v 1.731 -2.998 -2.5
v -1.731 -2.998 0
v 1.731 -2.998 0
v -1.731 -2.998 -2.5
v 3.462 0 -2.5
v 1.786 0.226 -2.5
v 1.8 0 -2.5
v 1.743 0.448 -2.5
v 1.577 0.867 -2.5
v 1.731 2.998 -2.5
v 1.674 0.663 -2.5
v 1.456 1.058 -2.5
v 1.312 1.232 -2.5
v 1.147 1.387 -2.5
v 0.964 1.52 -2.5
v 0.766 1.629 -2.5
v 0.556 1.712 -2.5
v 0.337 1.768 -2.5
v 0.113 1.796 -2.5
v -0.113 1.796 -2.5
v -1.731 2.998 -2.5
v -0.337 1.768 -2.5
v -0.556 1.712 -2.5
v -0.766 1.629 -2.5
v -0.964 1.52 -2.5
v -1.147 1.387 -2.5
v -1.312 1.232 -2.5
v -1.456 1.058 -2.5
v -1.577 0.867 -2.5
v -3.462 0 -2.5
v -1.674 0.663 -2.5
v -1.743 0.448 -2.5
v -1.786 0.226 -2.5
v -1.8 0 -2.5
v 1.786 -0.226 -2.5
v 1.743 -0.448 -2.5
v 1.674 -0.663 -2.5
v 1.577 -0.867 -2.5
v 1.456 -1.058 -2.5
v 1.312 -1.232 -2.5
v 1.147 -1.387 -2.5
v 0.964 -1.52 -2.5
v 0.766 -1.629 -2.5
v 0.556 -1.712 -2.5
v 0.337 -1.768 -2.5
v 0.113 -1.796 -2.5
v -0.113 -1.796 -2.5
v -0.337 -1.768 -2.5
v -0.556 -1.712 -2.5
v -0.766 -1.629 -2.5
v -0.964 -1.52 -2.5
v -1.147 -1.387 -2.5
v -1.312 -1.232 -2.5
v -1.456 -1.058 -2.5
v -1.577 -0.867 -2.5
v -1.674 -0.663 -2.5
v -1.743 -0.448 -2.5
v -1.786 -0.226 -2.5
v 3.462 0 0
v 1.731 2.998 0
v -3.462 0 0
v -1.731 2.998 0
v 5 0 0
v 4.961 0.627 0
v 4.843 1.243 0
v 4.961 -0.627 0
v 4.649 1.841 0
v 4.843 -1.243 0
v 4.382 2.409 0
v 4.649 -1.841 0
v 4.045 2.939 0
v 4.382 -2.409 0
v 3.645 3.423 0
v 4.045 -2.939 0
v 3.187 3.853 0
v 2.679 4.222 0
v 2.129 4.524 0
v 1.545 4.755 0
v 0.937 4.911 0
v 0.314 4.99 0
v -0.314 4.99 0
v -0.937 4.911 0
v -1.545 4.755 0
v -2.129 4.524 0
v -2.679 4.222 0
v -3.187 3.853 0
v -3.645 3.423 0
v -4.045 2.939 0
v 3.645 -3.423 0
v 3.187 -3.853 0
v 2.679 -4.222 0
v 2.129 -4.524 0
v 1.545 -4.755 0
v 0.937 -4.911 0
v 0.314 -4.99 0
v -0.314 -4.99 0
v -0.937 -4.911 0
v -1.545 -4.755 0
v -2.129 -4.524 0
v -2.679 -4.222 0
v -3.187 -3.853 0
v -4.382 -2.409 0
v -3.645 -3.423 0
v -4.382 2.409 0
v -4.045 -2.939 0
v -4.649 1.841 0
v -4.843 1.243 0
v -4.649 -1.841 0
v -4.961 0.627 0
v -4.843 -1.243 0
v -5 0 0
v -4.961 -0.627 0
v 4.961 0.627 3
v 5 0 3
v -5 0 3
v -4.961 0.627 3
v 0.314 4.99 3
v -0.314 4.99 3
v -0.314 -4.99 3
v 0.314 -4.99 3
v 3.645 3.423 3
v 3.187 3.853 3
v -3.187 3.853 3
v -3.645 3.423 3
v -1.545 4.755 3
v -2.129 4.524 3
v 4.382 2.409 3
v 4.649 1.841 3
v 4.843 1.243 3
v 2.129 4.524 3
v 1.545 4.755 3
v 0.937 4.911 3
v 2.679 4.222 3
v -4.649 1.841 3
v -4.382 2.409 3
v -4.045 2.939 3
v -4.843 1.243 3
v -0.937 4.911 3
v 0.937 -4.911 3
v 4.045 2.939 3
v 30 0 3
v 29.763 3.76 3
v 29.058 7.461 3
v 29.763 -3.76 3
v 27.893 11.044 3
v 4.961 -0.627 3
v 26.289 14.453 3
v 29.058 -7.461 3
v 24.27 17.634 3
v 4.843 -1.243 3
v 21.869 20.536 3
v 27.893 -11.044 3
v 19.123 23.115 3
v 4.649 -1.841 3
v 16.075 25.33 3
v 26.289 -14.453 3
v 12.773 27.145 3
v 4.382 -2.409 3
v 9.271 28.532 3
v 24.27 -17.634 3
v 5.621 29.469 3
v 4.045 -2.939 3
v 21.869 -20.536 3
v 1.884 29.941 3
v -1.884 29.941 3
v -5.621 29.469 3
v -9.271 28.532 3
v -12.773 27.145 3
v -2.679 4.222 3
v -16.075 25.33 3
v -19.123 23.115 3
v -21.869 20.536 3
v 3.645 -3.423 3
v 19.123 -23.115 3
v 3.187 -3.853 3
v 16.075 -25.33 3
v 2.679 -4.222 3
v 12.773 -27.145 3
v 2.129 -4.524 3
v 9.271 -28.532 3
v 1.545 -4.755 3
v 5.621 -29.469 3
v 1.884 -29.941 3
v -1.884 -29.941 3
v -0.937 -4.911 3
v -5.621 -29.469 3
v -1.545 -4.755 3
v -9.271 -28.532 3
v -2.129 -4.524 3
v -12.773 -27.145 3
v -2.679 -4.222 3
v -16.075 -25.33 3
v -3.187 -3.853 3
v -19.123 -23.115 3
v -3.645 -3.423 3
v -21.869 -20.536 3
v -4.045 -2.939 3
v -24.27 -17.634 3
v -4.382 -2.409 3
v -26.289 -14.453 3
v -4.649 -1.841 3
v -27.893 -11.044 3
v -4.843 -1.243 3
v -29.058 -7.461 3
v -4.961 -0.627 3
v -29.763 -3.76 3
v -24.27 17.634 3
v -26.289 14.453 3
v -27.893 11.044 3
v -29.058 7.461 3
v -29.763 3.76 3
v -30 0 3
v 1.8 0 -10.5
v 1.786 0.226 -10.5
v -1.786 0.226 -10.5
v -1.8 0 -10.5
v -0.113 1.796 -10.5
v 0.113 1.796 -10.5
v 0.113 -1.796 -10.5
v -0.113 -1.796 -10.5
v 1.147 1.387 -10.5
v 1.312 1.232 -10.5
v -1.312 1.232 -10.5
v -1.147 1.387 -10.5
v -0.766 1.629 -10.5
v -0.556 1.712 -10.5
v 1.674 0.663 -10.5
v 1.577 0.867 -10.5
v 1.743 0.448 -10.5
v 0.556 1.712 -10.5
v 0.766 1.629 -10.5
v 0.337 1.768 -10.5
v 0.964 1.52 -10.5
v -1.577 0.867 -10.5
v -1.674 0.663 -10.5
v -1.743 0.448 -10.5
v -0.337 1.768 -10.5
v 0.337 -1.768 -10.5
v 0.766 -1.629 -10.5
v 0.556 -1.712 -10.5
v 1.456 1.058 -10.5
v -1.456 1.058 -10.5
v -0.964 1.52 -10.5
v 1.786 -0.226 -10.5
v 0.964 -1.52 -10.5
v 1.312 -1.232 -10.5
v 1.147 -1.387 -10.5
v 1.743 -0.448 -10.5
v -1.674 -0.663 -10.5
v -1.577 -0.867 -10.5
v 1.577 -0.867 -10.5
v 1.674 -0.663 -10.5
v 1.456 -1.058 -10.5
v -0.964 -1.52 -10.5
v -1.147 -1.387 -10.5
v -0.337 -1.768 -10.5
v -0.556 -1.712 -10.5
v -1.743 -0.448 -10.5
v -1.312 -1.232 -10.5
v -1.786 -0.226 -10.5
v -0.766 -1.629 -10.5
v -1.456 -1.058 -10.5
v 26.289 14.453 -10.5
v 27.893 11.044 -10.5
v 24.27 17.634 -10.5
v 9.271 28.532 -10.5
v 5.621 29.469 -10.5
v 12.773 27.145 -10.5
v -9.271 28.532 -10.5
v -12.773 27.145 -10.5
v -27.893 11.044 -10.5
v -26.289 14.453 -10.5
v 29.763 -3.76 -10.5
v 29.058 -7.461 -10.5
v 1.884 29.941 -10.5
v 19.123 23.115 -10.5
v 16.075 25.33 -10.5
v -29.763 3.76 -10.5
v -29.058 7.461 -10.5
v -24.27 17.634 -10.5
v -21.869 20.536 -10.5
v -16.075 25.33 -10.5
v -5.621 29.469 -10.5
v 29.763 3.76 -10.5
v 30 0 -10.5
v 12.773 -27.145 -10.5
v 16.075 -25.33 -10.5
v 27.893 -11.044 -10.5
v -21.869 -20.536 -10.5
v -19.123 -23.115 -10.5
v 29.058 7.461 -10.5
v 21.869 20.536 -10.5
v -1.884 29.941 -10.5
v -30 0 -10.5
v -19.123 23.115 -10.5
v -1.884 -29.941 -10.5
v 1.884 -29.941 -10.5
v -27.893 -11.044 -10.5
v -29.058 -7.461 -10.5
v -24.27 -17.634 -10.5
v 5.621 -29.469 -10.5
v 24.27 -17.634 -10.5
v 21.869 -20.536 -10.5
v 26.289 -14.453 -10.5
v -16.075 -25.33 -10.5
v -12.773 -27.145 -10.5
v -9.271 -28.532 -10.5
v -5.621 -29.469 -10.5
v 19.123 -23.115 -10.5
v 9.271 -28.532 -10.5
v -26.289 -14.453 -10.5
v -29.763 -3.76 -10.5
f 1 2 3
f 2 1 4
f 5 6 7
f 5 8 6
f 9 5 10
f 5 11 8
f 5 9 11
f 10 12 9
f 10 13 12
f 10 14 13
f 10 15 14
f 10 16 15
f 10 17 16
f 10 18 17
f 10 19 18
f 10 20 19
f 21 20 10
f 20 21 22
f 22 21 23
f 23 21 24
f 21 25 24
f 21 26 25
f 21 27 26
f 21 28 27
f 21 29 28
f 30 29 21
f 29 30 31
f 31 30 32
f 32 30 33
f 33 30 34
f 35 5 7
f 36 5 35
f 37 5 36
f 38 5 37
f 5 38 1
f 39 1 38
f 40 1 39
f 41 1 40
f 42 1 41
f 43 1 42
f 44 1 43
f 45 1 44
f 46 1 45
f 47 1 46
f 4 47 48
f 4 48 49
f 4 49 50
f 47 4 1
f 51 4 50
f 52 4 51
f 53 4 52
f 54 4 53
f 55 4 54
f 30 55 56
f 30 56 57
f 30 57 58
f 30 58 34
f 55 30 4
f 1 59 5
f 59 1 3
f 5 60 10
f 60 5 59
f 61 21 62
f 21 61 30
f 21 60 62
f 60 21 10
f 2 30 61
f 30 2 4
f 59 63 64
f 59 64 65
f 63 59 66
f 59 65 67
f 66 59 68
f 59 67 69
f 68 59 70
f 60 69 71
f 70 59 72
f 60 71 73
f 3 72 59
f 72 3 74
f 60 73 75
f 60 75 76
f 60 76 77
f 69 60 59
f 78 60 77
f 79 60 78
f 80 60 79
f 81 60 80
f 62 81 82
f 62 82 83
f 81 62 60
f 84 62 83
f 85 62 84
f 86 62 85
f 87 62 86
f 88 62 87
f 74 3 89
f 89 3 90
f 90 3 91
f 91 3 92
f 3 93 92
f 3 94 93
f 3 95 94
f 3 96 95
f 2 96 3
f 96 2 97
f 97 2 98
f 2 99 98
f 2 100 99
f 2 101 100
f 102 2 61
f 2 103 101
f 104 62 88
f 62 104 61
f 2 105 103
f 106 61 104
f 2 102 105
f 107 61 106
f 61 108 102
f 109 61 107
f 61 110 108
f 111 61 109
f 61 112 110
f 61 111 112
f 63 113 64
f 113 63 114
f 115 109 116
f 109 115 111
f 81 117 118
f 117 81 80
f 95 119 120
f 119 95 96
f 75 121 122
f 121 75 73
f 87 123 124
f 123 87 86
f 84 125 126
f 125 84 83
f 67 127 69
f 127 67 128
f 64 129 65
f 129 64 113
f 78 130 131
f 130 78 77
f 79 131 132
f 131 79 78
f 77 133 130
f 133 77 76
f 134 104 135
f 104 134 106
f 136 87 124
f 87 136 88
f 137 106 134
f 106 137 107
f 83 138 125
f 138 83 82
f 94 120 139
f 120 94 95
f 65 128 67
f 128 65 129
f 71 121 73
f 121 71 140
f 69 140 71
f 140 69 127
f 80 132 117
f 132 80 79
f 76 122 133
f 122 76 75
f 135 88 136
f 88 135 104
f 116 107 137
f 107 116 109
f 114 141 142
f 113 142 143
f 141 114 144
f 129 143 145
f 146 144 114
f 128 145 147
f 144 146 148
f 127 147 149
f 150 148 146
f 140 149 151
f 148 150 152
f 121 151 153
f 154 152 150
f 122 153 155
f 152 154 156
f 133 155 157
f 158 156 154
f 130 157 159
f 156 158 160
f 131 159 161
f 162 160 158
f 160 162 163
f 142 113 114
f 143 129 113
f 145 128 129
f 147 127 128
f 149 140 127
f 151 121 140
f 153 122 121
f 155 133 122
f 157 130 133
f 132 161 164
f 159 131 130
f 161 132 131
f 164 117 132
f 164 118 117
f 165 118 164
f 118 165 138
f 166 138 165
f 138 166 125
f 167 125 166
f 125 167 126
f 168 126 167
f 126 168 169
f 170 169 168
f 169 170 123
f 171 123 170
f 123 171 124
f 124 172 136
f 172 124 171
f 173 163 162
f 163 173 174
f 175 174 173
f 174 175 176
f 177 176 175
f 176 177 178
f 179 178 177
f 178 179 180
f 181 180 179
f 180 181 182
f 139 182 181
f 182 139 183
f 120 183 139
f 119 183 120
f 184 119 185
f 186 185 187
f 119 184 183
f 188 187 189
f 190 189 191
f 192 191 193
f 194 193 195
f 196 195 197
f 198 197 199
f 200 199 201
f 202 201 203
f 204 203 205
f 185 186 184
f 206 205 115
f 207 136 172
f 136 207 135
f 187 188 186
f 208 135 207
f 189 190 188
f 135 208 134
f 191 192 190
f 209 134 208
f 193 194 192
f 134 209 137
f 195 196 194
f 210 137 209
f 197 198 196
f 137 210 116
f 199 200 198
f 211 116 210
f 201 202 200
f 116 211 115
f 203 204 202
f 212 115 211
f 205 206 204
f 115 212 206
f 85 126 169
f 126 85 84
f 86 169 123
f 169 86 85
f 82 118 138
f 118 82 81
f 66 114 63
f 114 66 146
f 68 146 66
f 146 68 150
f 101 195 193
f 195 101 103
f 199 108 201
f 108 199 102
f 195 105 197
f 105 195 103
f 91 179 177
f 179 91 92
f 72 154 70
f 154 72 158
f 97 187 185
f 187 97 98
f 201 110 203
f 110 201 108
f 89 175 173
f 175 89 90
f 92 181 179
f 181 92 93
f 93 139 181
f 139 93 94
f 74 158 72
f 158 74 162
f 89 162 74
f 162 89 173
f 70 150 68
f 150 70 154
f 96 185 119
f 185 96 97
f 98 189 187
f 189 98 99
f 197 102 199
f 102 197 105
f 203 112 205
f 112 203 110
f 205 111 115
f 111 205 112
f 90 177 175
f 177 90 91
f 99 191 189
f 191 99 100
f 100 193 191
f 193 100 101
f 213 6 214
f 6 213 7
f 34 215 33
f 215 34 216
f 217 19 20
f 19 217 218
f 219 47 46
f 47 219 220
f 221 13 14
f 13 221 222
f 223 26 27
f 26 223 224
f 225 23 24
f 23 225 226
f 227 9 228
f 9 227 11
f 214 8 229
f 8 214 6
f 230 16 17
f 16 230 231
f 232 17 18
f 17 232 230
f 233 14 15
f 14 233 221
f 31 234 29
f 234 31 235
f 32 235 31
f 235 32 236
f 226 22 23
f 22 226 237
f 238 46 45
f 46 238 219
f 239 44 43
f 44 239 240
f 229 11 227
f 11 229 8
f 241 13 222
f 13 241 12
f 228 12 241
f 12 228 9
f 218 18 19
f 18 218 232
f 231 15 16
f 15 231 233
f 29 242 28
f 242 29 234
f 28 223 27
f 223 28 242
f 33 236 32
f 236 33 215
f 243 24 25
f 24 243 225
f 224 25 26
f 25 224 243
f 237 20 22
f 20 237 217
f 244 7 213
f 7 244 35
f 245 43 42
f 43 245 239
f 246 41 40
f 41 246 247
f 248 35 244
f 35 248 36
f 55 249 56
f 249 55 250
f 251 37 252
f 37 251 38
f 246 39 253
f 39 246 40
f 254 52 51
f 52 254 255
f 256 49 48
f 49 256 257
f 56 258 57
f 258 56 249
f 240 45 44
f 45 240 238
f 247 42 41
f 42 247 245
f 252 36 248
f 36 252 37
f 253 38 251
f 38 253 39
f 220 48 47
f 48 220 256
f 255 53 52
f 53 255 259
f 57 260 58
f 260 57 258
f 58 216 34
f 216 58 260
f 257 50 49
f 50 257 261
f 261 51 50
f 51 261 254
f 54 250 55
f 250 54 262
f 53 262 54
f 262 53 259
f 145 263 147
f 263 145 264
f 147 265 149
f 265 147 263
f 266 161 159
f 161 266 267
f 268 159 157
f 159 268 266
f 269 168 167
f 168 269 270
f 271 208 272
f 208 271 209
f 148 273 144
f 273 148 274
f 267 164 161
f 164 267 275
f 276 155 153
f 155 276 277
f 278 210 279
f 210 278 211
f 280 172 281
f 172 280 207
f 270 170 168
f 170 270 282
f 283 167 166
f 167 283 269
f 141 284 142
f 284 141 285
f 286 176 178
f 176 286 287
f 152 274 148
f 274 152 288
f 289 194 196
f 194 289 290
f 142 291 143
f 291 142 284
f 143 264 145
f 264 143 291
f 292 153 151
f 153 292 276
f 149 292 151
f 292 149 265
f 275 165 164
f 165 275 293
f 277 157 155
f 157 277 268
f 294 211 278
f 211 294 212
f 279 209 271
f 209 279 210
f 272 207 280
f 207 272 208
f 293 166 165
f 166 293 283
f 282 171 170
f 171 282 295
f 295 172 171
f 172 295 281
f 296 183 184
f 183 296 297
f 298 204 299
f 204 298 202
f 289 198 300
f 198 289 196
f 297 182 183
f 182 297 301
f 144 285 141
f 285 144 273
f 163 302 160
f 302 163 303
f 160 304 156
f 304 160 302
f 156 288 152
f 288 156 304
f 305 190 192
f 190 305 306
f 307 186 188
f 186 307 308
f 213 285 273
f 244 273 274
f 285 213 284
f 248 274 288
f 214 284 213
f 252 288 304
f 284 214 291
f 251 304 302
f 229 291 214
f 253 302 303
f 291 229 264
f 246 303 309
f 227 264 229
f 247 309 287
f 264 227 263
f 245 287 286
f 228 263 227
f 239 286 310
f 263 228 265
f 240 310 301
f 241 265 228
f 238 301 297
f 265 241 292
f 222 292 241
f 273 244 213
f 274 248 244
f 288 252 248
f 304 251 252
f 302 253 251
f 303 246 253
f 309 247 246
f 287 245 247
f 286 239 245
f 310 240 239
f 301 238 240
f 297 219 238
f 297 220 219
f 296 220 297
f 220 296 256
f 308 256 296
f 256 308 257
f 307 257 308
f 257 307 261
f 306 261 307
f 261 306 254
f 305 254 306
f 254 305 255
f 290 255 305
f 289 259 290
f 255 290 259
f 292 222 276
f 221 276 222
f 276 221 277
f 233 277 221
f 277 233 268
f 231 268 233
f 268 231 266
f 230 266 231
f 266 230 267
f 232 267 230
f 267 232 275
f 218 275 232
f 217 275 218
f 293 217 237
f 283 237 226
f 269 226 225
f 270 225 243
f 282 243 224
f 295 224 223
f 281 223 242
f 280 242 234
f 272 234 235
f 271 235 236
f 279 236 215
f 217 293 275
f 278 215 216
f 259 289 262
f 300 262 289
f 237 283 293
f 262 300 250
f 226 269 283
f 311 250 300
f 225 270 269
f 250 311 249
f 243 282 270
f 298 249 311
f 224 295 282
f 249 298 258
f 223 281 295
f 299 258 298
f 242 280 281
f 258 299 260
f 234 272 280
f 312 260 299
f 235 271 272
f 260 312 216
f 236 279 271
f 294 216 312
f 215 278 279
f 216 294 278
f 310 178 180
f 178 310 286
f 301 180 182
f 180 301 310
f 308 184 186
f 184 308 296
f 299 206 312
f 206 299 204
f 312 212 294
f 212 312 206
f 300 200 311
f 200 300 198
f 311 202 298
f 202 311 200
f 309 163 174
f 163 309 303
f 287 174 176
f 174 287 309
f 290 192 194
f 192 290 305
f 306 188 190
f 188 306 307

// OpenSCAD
$fn = 50;

difference() {
	union() {
		translate(v = [0, 0, -10.5]) {
			cylinder(h = 13.5, r = 30.0);
		}
	}
	union() {
		translate(v = [0, 0, 0]) {
			rotate(a = [0, 0, 0]) {
				difference() {
					union() {
						translate(v = [0, 0, -2.5]) {
							linear_extrude(height = 2.5) {
								polygon(points = [[3.4619999999999997, 0.0], [1.7310000000000003, 2.9981799479017264], [-1.7309999999999992, 2.9981799479017264], [-3.4619999999999997, 4.2397272186481365e-16], [-1.7310000000000014, -2.998179947901726], [1.7309999999999977, -2.9981799479017277]]);
							}
						}
					}
					union();
				}
			}
		}
		#cylinder(h = 3, r = 5.0);
		#translate(v = [0, 0, -100.0]) {
			cylinder(h = 200, r = 1.8);
		}
	}
}
